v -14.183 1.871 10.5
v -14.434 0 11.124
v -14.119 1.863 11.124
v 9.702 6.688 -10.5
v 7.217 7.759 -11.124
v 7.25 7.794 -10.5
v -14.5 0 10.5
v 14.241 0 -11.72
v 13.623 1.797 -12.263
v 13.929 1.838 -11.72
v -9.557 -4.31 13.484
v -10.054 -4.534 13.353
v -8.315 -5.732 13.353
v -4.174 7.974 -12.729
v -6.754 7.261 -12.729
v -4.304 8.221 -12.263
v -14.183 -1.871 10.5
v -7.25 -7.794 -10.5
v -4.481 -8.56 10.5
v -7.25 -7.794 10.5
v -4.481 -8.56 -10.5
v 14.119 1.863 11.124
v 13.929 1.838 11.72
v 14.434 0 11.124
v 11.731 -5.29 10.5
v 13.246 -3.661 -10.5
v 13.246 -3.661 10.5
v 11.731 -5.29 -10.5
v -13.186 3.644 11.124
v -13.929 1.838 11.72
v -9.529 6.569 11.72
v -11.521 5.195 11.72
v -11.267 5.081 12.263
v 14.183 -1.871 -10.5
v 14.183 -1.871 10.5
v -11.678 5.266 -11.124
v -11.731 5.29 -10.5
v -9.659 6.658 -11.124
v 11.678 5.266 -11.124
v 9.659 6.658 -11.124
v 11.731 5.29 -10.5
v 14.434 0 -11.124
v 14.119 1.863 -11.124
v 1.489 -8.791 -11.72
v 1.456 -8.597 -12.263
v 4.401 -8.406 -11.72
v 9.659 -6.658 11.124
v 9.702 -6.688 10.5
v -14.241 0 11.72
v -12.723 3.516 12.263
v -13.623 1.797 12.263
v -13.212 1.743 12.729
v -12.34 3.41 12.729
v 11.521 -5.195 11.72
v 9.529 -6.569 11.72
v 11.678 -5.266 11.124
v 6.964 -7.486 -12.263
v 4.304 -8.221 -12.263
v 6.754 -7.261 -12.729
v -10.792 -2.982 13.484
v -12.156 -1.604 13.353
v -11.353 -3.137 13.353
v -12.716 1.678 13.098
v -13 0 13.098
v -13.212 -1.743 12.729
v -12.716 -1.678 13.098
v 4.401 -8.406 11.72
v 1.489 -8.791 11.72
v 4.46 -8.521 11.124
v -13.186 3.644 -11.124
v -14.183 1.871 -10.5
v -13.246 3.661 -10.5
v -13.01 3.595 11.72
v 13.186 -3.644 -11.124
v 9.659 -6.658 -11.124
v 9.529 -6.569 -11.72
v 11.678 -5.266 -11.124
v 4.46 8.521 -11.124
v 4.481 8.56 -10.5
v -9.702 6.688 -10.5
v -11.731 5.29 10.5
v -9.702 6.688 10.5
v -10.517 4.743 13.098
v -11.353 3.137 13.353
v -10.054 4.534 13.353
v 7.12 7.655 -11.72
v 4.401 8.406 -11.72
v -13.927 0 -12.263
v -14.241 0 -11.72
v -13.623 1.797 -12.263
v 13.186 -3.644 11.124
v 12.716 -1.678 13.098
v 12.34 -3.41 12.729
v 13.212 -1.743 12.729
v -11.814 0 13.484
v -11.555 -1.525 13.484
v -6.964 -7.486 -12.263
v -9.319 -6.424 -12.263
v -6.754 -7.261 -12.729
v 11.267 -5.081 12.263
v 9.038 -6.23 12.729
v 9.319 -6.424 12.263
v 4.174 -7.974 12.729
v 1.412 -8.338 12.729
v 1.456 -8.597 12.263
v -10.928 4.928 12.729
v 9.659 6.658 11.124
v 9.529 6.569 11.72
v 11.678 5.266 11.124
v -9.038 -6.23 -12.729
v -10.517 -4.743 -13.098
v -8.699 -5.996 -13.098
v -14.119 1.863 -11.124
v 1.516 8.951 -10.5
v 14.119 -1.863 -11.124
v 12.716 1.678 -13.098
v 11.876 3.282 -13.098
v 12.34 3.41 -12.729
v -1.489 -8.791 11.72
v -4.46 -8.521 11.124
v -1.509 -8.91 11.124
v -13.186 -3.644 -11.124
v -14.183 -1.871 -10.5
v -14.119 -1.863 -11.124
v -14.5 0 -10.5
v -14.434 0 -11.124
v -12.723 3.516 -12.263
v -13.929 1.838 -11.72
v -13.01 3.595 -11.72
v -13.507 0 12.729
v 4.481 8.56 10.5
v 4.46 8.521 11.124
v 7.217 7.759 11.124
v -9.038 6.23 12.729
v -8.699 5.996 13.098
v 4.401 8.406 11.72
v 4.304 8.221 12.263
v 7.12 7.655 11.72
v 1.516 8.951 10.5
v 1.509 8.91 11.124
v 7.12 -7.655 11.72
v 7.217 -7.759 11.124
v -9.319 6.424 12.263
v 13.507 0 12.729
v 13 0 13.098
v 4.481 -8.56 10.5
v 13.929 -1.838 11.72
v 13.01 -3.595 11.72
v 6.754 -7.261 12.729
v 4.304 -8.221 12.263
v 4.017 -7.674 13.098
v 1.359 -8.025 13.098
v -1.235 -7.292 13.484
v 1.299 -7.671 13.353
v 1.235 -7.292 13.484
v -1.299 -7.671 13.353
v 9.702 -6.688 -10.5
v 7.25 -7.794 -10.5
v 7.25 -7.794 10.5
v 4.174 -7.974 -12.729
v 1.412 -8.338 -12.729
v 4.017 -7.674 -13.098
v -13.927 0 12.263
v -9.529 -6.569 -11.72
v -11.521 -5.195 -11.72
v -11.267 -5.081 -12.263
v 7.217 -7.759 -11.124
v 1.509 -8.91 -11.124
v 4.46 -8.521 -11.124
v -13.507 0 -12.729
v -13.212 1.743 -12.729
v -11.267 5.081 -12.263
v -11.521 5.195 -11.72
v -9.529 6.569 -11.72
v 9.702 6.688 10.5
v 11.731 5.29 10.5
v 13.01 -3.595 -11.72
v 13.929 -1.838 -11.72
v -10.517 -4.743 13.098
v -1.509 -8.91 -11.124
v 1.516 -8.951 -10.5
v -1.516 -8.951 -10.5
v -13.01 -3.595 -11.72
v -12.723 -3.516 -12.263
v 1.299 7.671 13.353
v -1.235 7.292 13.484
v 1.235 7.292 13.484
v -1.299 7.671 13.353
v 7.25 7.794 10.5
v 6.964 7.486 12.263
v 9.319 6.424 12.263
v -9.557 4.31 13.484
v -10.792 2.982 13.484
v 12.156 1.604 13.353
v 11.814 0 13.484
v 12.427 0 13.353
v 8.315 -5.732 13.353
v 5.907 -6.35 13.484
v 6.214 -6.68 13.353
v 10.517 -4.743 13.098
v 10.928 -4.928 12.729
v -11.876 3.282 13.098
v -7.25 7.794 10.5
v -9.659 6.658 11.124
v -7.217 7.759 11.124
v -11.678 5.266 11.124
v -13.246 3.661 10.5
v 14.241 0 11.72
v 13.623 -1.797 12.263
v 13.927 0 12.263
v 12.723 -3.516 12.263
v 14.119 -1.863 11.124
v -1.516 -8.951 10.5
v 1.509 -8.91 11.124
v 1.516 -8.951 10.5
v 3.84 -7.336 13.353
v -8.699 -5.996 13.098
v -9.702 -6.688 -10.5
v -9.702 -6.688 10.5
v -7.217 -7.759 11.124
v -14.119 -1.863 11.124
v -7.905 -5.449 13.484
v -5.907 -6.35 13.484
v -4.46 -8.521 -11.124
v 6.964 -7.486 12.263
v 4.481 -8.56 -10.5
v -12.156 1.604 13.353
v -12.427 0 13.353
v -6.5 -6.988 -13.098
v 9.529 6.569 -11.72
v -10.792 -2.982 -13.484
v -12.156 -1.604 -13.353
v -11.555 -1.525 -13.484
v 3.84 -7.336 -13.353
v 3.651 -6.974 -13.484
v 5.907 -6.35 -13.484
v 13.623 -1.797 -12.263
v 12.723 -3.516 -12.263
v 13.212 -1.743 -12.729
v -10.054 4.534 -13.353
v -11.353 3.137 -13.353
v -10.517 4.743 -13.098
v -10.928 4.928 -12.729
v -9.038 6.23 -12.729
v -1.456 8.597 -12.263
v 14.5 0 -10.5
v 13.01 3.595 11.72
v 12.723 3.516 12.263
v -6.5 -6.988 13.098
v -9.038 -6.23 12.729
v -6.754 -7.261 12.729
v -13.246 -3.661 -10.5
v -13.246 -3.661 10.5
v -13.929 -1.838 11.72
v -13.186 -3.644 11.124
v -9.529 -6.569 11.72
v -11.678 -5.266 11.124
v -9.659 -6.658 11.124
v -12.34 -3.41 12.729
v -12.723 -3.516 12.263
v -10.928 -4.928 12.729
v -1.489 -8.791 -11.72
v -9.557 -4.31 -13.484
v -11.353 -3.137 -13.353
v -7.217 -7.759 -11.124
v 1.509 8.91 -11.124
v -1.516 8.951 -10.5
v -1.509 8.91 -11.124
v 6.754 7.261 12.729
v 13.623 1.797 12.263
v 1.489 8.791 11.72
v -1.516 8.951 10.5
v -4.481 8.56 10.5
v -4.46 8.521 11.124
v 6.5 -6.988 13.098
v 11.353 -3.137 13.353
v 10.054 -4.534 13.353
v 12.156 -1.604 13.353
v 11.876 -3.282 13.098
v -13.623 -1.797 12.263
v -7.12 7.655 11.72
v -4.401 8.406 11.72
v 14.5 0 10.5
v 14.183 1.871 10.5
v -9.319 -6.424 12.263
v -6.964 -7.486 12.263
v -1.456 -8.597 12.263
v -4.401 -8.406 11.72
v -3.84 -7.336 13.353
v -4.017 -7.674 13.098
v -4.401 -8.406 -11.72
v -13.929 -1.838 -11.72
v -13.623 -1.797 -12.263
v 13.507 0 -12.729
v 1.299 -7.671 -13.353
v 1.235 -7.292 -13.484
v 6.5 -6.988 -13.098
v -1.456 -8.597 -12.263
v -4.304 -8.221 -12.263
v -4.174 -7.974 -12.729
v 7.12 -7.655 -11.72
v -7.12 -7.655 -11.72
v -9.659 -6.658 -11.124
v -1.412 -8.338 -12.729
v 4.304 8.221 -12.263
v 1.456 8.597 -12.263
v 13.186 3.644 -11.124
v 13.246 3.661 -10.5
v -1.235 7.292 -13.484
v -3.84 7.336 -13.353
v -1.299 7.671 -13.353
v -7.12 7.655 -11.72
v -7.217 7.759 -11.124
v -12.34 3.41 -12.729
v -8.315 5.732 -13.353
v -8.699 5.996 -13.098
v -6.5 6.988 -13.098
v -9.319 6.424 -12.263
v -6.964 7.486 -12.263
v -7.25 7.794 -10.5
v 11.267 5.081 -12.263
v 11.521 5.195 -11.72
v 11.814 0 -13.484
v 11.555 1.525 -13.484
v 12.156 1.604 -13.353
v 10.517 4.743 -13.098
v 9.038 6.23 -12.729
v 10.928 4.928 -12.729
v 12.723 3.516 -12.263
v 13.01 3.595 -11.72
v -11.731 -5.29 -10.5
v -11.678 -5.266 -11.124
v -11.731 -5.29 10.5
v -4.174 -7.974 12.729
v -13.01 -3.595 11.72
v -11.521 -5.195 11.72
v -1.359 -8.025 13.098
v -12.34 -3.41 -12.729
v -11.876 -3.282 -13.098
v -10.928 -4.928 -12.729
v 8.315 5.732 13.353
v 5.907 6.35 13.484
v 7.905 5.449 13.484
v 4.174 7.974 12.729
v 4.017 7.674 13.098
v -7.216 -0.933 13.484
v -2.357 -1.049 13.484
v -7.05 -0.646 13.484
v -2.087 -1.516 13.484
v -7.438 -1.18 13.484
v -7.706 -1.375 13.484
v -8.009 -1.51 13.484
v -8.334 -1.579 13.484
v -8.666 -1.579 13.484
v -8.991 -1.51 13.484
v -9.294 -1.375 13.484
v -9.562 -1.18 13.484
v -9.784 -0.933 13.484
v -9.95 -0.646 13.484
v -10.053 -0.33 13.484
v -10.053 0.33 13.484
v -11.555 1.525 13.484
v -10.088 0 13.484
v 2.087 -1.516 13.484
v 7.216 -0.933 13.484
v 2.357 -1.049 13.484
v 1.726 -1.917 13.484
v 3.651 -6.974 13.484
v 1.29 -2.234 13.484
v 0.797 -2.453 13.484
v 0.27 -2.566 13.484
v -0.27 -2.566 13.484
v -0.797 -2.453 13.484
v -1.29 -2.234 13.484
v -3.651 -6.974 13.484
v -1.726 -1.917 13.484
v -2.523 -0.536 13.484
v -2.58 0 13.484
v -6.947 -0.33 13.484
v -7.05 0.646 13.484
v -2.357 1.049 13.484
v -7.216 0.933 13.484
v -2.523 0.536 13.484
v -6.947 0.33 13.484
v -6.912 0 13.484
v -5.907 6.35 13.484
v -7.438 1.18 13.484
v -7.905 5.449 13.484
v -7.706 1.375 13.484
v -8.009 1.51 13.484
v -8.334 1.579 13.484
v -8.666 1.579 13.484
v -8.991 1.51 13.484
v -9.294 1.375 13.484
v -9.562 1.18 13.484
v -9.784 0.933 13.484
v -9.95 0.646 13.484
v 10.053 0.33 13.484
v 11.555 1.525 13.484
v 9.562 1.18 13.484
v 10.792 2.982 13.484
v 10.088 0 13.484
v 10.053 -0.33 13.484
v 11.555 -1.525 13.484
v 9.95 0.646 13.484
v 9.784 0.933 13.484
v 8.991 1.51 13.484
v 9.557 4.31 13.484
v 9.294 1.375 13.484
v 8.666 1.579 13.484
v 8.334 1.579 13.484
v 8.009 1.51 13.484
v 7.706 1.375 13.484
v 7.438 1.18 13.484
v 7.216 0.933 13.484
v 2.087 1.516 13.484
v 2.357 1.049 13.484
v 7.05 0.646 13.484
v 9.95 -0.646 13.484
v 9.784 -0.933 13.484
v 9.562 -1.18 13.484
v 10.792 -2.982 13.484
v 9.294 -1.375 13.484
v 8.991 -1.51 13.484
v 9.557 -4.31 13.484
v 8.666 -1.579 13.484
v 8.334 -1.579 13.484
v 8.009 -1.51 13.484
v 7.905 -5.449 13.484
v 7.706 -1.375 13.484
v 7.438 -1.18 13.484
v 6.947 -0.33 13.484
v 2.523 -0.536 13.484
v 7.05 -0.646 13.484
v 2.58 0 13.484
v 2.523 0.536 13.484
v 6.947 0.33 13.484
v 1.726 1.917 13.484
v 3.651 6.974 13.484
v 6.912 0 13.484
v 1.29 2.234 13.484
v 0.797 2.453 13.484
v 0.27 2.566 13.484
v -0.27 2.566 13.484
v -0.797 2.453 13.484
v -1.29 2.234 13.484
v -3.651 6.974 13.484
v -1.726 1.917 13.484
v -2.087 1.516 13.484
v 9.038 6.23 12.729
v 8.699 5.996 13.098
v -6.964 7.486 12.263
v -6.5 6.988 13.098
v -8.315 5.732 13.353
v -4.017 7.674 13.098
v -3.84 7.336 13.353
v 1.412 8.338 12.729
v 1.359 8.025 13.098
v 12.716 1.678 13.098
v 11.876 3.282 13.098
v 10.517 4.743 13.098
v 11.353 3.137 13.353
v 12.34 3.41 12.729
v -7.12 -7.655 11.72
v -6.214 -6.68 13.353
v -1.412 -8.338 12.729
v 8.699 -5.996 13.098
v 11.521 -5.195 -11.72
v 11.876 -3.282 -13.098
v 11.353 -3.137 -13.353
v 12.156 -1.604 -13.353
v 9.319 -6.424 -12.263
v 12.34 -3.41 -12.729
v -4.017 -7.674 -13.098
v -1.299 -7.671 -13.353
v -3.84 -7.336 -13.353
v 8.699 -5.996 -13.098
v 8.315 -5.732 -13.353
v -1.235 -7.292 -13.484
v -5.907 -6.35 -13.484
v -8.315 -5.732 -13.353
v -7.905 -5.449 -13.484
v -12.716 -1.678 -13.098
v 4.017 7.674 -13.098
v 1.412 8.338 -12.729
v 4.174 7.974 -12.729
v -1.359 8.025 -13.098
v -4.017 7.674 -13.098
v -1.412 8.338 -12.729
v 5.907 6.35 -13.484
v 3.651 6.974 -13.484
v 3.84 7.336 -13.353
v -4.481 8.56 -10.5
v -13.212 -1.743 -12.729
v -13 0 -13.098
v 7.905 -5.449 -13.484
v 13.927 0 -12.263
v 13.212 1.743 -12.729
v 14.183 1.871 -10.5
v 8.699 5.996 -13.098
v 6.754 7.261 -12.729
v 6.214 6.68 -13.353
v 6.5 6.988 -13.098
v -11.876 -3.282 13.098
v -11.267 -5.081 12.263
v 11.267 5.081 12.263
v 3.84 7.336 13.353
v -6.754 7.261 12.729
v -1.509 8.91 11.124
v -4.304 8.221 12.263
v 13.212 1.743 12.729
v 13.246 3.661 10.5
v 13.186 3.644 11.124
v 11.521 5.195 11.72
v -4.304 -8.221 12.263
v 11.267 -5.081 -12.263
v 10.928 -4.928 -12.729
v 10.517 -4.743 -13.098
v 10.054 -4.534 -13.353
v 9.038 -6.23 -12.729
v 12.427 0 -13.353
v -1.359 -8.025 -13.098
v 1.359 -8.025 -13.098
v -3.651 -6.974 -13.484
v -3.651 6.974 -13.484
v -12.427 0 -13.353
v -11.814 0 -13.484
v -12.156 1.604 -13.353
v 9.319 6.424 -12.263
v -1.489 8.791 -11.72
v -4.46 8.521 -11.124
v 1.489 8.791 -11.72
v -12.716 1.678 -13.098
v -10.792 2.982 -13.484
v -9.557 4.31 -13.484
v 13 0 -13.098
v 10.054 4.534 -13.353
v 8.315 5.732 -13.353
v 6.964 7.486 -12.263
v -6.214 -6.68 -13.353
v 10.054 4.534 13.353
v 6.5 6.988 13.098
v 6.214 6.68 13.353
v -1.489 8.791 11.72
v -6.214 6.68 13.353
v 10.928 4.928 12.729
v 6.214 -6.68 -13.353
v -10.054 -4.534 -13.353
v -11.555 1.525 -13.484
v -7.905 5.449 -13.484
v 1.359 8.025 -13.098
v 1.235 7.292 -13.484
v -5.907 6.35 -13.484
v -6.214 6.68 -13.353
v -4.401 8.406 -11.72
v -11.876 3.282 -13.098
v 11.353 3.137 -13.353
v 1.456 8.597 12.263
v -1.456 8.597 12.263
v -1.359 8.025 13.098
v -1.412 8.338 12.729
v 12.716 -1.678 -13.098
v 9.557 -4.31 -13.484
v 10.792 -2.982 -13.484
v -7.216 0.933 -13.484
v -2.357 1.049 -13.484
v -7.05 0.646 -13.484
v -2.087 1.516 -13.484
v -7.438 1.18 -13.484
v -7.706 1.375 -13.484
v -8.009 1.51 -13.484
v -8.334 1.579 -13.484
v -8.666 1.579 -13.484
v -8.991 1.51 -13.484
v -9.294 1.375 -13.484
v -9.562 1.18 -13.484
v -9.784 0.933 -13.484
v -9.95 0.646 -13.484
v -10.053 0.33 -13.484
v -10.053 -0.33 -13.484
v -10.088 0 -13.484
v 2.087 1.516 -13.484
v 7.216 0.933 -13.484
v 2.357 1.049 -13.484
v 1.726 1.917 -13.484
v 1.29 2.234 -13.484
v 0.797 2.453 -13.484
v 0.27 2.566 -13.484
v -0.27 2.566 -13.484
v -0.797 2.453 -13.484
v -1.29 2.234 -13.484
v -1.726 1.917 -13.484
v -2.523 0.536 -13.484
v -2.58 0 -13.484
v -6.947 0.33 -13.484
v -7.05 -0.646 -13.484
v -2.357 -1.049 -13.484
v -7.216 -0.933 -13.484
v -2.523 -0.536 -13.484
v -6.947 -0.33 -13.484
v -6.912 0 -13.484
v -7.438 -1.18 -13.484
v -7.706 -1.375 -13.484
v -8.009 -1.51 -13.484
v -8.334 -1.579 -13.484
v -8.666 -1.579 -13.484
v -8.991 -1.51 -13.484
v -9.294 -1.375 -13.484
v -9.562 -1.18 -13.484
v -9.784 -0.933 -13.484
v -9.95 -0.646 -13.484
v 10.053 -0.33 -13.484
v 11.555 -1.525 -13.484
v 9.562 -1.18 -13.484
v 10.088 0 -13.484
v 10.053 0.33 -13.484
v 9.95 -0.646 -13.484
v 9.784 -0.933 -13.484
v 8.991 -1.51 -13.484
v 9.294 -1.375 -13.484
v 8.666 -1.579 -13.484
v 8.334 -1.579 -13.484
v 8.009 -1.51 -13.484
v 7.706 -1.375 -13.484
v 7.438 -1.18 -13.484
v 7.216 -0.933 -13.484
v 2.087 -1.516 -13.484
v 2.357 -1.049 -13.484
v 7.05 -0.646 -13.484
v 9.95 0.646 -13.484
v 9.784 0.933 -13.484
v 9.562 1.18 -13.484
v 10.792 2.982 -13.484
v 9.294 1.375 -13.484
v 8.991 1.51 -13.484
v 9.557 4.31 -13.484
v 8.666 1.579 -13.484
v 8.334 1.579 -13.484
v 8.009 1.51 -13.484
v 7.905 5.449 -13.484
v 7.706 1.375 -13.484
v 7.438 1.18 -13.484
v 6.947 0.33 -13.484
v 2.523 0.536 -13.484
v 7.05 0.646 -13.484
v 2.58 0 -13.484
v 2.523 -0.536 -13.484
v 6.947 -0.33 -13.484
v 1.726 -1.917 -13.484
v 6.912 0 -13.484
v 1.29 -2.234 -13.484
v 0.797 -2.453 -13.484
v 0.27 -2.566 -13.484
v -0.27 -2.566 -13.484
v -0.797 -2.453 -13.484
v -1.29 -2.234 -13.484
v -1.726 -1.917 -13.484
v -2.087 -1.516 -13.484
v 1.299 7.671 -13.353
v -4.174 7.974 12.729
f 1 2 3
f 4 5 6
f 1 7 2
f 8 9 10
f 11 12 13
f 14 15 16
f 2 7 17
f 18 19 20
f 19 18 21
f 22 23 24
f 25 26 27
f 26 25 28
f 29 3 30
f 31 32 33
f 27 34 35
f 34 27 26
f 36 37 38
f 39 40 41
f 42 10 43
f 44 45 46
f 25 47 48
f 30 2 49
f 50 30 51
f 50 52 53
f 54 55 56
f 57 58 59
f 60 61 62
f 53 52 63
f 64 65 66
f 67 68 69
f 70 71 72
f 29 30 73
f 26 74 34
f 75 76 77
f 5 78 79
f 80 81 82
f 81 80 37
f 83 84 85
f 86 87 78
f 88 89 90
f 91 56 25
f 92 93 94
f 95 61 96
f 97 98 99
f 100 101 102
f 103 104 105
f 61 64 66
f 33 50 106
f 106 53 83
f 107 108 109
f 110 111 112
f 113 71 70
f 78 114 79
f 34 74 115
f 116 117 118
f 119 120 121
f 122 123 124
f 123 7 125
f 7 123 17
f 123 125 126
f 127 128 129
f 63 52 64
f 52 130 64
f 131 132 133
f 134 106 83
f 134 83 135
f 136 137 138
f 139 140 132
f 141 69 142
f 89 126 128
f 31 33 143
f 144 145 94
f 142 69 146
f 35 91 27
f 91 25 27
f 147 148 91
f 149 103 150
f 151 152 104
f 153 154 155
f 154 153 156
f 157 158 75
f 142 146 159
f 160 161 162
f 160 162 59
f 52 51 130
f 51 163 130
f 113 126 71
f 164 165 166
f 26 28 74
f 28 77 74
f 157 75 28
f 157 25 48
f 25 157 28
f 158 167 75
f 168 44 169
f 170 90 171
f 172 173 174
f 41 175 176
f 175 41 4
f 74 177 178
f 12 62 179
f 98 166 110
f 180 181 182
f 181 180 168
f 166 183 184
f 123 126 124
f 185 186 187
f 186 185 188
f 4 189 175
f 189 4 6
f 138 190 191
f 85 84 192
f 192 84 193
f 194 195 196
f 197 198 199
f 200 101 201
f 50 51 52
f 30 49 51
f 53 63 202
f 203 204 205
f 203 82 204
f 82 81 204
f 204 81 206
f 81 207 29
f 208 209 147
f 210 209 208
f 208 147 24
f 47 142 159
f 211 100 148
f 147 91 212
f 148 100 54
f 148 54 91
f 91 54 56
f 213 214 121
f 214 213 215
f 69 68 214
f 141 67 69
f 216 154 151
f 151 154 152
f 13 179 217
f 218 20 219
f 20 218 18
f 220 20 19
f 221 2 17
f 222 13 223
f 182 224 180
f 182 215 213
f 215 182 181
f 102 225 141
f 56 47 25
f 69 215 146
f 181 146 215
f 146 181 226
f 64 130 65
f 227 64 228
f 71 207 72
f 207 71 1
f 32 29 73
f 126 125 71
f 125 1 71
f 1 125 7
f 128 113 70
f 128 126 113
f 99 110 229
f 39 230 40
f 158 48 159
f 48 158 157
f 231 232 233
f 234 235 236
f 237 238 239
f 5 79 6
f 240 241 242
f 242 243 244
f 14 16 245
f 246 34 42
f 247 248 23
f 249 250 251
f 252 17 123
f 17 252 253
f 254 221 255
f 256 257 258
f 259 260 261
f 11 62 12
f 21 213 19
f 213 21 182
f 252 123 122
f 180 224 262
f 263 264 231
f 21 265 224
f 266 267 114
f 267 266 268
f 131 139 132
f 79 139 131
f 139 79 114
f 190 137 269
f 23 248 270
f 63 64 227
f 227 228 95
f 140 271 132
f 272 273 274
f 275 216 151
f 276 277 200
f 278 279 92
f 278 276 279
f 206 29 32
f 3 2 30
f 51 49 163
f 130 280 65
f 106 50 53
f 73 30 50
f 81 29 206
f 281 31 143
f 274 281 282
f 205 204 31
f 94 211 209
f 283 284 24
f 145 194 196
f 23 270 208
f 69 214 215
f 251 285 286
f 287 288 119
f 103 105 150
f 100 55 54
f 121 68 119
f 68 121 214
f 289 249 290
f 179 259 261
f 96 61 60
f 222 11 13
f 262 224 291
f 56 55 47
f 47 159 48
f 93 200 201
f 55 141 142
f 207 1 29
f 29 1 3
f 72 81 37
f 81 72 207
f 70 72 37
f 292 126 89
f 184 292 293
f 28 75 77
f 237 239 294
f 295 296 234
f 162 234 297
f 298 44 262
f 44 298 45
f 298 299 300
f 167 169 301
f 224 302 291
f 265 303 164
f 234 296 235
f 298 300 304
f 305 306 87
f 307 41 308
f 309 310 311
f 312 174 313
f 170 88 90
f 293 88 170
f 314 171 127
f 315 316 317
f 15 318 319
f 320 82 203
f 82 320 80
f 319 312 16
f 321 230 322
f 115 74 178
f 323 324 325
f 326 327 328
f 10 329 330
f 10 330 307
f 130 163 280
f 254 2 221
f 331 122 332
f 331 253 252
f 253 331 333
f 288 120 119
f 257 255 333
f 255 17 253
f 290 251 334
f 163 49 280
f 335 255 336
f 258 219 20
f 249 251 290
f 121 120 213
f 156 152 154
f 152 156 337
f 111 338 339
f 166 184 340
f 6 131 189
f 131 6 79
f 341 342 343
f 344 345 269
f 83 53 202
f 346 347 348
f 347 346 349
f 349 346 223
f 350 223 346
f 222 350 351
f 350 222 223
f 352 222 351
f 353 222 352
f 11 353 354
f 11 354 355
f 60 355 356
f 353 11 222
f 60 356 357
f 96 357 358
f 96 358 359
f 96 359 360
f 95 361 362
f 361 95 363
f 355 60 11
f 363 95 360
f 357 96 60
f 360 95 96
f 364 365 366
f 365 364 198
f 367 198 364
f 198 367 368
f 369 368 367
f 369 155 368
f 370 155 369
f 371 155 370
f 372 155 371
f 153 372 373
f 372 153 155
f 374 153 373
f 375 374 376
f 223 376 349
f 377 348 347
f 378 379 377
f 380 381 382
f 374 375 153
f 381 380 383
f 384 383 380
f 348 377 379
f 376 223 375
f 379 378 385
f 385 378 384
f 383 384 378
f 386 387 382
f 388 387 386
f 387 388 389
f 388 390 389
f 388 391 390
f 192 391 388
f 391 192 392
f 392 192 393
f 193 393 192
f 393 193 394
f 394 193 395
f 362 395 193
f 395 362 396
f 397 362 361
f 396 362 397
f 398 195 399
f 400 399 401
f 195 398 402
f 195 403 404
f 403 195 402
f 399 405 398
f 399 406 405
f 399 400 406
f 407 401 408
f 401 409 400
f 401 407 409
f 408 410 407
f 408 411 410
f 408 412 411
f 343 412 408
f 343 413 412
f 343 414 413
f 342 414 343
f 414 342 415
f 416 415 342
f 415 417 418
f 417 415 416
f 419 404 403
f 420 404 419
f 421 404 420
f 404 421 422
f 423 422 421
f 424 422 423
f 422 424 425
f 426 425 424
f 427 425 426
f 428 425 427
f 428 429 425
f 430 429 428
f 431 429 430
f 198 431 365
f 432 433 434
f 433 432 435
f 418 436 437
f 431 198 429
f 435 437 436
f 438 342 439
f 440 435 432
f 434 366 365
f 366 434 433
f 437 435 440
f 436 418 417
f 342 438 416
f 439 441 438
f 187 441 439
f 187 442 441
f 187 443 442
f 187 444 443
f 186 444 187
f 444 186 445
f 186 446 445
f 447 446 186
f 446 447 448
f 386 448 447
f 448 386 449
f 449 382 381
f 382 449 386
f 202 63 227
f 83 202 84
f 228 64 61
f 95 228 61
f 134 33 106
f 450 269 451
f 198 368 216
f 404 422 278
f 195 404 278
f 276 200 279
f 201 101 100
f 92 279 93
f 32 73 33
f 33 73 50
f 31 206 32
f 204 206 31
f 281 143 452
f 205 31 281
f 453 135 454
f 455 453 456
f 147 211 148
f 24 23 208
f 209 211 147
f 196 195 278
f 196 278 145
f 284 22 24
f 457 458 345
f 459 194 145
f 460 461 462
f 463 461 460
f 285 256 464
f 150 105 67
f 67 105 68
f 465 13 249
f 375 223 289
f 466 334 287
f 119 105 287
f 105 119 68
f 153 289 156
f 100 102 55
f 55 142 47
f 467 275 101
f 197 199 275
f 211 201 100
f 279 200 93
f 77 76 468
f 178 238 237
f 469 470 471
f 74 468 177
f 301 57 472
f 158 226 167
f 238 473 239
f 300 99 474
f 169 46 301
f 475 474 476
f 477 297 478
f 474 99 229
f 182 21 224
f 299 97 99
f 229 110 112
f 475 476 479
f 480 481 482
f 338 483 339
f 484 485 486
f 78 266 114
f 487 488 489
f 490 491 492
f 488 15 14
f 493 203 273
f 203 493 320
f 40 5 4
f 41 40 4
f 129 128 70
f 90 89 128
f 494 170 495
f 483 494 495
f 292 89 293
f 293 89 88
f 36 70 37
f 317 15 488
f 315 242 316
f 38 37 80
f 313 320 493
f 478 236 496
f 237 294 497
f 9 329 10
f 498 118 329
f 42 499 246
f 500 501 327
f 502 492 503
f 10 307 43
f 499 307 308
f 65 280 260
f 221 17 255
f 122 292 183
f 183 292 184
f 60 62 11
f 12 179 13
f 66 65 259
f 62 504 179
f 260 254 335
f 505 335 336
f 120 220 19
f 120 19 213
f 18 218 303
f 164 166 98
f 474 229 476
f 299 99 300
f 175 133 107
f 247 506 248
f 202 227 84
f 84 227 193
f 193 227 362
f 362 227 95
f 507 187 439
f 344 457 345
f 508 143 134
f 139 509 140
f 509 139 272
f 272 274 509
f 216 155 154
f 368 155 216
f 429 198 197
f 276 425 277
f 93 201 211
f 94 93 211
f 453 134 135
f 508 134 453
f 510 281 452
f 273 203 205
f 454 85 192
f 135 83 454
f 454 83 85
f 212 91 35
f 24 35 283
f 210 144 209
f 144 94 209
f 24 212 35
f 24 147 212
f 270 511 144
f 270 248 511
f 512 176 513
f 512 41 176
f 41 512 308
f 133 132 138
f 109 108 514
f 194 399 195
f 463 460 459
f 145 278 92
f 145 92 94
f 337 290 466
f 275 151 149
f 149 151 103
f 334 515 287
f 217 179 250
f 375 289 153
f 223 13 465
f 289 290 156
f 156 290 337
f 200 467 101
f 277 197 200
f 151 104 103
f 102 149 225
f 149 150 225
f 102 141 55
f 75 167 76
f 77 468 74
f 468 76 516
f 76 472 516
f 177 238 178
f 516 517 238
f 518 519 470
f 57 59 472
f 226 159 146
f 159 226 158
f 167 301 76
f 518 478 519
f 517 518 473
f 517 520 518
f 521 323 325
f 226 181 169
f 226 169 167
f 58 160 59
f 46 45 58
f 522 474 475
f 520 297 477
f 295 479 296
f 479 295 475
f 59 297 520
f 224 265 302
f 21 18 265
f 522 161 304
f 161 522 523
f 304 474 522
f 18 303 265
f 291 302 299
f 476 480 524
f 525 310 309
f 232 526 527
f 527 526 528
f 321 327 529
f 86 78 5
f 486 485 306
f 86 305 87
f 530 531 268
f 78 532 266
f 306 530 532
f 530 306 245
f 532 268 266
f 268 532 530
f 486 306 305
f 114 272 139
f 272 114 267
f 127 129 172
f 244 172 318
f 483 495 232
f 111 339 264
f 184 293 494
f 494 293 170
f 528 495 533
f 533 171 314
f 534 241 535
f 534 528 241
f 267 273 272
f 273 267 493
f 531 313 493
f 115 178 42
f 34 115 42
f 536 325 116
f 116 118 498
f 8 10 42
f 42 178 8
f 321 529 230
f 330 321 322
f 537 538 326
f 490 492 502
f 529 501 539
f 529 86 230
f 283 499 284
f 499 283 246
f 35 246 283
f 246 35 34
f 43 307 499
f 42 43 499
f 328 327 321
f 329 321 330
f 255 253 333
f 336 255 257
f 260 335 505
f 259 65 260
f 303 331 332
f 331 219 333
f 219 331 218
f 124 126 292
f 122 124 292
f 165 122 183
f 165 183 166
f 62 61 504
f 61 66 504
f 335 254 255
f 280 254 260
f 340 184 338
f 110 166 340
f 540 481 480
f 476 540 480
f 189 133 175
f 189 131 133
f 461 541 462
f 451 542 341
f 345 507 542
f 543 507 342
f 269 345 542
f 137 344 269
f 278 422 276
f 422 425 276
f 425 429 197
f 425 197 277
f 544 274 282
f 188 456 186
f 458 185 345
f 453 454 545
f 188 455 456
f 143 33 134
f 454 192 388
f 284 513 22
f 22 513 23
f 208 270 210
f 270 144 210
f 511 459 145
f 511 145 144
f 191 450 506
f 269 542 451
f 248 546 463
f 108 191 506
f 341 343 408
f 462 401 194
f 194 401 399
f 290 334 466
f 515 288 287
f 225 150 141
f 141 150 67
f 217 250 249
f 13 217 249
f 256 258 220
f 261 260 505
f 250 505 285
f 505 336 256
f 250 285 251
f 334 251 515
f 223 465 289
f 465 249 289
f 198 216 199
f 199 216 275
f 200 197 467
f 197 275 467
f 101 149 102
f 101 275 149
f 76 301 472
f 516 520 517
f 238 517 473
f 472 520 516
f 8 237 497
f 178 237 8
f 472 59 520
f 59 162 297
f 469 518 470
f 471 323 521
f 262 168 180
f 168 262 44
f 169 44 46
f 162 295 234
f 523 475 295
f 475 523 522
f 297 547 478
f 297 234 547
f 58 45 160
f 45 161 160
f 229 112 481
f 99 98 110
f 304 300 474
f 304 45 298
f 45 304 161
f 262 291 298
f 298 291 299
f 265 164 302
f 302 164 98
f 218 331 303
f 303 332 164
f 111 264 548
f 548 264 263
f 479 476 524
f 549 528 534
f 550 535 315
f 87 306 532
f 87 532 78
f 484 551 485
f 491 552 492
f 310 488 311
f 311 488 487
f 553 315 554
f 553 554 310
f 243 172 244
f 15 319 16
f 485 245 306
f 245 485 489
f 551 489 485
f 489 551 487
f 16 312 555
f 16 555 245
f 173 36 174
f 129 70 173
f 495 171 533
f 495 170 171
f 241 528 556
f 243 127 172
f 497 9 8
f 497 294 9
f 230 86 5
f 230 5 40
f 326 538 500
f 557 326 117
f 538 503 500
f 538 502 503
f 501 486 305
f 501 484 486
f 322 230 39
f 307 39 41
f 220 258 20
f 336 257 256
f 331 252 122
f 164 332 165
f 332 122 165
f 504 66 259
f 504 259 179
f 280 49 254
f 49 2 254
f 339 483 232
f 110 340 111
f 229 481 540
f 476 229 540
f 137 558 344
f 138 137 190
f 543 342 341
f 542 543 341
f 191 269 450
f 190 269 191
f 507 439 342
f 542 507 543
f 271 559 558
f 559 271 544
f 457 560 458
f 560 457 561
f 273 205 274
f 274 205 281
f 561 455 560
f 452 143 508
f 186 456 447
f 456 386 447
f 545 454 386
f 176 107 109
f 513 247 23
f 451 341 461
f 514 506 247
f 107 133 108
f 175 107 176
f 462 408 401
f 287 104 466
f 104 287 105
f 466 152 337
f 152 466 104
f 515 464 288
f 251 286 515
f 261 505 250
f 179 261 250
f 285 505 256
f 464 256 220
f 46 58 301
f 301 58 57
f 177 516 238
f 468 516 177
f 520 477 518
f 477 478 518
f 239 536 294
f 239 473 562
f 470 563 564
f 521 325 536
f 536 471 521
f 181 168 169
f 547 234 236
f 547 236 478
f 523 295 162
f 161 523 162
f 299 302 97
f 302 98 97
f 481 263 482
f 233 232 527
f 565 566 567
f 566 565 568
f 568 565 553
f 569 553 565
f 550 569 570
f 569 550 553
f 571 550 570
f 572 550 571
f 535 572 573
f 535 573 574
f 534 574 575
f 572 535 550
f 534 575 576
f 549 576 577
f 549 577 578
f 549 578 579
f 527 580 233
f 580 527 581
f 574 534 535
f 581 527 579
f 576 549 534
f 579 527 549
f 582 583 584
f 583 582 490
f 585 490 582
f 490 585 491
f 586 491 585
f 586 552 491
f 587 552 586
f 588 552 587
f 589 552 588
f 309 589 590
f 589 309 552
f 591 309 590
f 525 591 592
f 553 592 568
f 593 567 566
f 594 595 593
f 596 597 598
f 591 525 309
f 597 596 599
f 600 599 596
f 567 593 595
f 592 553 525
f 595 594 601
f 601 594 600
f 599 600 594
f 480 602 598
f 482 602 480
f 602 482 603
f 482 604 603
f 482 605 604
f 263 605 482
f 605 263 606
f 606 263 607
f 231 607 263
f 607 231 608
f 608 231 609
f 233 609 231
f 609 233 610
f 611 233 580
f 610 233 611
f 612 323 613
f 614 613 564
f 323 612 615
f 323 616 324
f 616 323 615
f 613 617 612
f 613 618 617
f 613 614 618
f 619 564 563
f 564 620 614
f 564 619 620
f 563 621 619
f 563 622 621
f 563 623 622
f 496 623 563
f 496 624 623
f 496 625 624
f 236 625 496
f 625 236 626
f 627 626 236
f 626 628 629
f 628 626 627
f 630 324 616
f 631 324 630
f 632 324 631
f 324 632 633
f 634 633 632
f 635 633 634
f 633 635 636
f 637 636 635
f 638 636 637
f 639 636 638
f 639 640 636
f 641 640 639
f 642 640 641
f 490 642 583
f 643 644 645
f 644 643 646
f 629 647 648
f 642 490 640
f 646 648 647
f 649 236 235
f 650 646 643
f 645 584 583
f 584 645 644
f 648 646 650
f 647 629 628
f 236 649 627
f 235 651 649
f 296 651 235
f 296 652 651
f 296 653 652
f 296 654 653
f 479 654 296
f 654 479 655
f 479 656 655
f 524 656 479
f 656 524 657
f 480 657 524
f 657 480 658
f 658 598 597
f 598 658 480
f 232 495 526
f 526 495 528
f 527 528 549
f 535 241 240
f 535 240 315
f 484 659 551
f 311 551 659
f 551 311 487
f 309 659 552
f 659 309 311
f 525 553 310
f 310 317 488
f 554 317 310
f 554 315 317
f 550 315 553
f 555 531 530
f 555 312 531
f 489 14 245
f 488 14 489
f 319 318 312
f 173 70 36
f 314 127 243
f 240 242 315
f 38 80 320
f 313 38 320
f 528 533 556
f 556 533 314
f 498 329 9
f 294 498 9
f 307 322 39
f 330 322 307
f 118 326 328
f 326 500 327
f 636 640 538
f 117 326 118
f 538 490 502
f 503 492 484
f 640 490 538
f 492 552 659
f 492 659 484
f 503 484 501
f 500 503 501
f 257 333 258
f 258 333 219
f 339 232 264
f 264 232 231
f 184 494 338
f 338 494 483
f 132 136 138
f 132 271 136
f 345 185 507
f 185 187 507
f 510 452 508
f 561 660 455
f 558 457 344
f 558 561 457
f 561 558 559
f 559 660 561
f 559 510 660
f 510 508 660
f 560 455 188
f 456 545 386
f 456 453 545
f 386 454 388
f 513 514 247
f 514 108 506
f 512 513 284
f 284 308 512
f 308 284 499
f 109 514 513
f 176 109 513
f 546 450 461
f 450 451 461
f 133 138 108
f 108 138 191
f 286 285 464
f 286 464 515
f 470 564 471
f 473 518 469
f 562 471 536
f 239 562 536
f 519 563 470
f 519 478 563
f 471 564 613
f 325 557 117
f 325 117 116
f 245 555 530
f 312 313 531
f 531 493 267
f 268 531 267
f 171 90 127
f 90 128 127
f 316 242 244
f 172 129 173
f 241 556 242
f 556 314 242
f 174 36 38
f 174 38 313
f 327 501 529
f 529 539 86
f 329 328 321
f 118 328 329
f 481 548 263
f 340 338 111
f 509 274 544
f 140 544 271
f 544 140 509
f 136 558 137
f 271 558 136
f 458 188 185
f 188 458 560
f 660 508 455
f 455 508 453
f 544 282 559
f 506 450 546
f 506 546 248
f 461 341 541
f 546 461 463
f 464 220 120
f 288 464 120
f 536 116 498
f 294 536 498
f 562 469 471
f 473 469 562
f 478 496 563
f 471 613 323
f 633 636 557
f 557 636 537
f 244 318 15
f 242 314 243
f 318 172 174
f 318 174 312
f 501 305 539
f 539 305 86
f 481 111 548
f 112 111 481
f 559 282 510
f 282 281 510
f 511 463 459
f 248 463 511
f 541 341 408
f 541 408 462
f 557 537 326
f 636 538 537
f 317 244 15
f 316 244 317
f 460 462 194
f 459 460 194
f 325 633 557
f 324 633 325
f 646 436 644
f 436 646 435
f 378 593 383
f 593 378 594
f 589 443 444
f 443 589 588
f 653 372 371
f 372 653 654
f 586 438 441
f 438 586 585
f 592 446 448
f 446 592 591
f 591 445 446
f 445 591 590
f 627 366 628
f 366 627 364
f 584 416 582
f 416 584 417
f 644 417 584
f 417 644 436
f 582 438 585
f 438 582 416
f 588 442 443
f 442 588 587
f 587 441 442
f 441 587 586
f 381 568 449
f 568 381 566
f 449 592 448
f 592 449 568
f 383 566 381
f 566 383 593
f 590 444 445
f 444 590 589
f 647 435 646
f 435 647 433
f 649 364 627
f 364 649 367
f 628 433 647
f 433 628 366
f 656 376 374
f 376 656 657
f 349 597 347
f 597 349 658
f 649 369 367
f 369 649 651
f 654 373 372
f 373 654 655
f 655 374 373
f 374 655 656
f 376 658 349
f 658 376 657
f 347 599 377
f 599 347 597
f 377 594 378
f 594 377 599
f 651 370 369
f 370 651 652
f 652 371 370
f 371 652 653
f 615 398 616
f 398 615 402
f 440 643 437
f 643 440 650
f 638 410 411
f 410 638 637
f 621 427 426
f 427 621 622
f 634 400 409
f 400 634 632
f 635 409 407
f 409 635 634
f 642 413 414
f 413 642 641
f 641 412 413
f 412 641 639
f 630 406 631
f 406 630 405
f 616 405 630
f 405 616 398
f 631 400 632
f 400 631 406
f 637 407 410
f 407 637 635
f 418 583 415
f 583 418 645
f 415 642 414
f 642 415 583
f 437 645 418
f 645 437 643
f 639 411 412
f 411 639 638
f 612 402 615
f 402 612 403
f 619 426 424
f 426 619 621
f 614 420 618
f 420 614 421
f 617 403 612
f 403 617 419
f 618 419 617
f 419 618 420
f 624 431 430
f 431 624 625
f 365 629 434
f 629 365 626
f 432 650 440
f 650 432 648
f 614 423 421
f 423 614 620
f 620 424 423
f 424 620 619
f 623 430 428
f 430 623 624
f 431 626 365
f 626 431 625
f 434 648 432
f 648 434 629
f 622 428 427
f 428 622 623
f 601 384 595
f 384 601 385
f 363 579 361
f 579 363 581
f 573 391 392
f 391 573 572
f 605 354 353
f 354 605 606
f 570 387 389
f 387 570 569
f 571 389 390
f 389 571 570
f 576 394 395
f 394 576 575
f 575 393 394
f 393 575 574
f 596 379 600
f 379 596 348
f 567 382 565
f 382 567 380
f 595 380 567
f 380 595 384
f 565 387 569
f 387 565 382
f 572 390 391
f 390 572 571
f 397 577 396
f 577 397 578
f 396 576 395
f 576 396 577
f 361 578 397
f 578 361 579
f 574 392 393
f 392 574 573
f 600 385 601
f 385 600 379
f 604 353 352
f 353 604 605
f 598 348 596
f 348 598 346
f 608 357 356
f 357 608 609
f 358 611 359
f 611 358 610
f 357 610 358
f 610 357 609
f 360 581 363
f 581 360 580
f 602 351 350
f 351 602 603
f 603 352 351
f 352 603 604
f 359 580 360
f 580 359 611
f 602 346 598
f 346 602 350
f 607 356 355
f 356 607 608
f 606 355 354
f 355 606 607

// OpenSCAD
// file: rounded_cylinder.scad
// Modules for generating a rounded cylinder, rounded disc, and torus
// Author: Philip B Chase, <philipbchase@gmail.com>

/* License: To the extent possible under law, Philip B Chase has waived all copyright and related or neighboring rights to modules to generate a rounded cylinder, rounded disc, and torus. This work is published from: United States.  See: http://creativecommons.org/publicdomain/zero/1.0/

Usage:

    $fn=30;
    height=10;
    major_radius=7;
    minor_radius=3;

    rounded_cylinder(height, major_radius, minor_radius);

      or

    rounded_disc(major_radius, minor_radius);

*/


module rounded_cylinder(height, major_radius, minor_radius) {
    // height is the total height of the cylinder
    // major_radius is the radius of the flat zone at the top and bottom of the cylinder
    // minor_radius is the radius of curvature of the rounded edges
    // the radius of the cylinder is major_radius + minor_radius
    // the cylinder is centered at [0,0,0]
    torus_displacement = 0.5 * height - minor_radius;
    hull(){
        translate([0,0,torus_displacement])
            torus(major_radius, minor_radius);
        translate([0,0,-torus_displacement])
            torus(major_radius, minor_radius);
    }
}

module rounded_cylinder_2(height, cylinder_major_radius, torus_minor_radius) {
    // height is the total height of the cylinder
    // cylinder_major_radius is the overall radius of the cylinder--not the torus
    // minor_radius is the radius of curvature of the rounded edges
    // the cylinder is centered at [0,0,0]
    torus_displacement = 0.5 * height - torus_minor_radius;
    torus_major_radius = cylinder_major_radius - torus_minor_radius;
    hull(){
        translate([0,0,torus_displacement])
            torus(torus_major_radius, torus_minor_radius);
        translate([0,0,-torus_displacement])
            torus(torus_major_radius, torus_minor_radius);
    }
}

module half_rounded_cylinder(height, cylinder_major_radius, torus_minor_radius) {
    // height is the total height of the cylinder
    // cylinder_major_radius is the overall radius of the cylinder--not the torus
    // minor_radius is the radius of curvature of the rounded edges
    // Constraints
    //   height >= torus_minor_radius
    //   cylinder_major_radius > 2 * torus_minor_radius
    // The cylinder is centered at [0,0,0]
    
    torus_displacement = 0.5 * height - torus_minor_radius;
    cylinder_height = 0.001*torus_minor_radius;
    cylinder_displacement = - 0.5 * height + 0.5 * cylinder_height;
    torus_major_radius = cylinder_major_radius - torus_minor_radius;

    hull(){
        difference() {
            translate([0,0,torus_displacement])
            torus(torus_major_radius, torus_minor_radius);
            translate([0,0,torus_displacement - 0.5 * torus_minor_radius])
                cylinder(h=torus_minor_radius, r=cylinder_major_radius, center=true);
        }
        translate([0,0,cylinder_displacement])
            cylinder(h=cylinder_height, r=cylinder_major_radius, center=true);
    }
}


module rounded_disc(major_radius, minor_radius) {
    // the disc is centered at [0,0,0]
    hull() {
        torus(major_radius, minor_radius);
    }
}

module torus(major_radius, minor_radius){
    // minor_radius is the radius of the cross section of the torus
    // major_radius is the radius torus
    //$fn=30;
    rotate_extrude(convexity = 10)
        translate([major_radius,0,0])
            circle(minor_radius);
}
// main file
// 3D model for a separation block for a kite-bar control system
// The separation block defines the interface of the flying lines
// with the trimline and the flag line.
// See http://philipbchase.com/moveable-stoppers/
// Make one per kite bar
// Author: Philip B Chase, <philipbchase@gmail.com>
/* This component transfers load from the main flying lines by providing a pair of parallel bore holes. Each flying line passes through a bore hole. The flying line is trapped on the lower side of the block via a larks head of relatively fat line. The pair of bore holes surround a larger, central bore hole. The central bore hole allows a heavier line to be secured to the separation block. The upper end is secured via an overhand knot. The lower end of the central line entraps a low friction ring that acts as a pulley for the trim line.

    This component should be printed with 100% infill.

*/
/* License: To the extent possible under law, Philip B Chase has waived all copyright and related or neighboring rights to 3D model for a separation block for a kite-bar control system. This work is published from: United States.  See: http://creativecommons.org/publicdomain/zero/1.0/
*/

use <rounded_cylinder.scad>;

$fn=30;

// Body dimensions
overall_width=29;  // x
overall_depth=18;  // y
overall_height=27; // z
// radii of block corners and edges
r_body = 3;

// Dimensions of central bore
// Drill out to 3/16"
central_bore_radius = 13/64 * 25.4 / 2;
central_bore_length = overall_height + 2;

// Dimensions of main line bore
main_line_bore_radius = 0.125 * 25.4 / 2; 
main_line_bore_length = overall_height + 2;
main_line_bore_x_offset = 8.5;


difference() {
    cylindrical_body(overall_width, overall_depth, overall_height, r_body);
    central_bore(central_bore_radius, central_bore_length);
    flying_line_bore(main_line_bore_radius, main_line_bore_length, main_line_bore_x_offset);
    flying_line_bore(main_line_bore_radius, main_line_bore_length, -main_line_bore_x_offset);
}


module central_bore(radius, length) {
    cylinder(h=length, r=radius, center=true);
}

module flying_line_bore(radius, length, x_offset) {
    translate([x_offset,0,0])
        cylinder(h=length, r=radius, center=true);
}

module cylindrical_body(overall_width, overall_depth, overall_height, radius_of_edges) {
    major_radius = overall_width/2 - radius_of_edges;
    y_scale = overall_depth/overall_width;
    scale([1,y_scale,1]) {
        rounded_cylinder(overall_height, major_radius, radius_of_edges);
    }
}
